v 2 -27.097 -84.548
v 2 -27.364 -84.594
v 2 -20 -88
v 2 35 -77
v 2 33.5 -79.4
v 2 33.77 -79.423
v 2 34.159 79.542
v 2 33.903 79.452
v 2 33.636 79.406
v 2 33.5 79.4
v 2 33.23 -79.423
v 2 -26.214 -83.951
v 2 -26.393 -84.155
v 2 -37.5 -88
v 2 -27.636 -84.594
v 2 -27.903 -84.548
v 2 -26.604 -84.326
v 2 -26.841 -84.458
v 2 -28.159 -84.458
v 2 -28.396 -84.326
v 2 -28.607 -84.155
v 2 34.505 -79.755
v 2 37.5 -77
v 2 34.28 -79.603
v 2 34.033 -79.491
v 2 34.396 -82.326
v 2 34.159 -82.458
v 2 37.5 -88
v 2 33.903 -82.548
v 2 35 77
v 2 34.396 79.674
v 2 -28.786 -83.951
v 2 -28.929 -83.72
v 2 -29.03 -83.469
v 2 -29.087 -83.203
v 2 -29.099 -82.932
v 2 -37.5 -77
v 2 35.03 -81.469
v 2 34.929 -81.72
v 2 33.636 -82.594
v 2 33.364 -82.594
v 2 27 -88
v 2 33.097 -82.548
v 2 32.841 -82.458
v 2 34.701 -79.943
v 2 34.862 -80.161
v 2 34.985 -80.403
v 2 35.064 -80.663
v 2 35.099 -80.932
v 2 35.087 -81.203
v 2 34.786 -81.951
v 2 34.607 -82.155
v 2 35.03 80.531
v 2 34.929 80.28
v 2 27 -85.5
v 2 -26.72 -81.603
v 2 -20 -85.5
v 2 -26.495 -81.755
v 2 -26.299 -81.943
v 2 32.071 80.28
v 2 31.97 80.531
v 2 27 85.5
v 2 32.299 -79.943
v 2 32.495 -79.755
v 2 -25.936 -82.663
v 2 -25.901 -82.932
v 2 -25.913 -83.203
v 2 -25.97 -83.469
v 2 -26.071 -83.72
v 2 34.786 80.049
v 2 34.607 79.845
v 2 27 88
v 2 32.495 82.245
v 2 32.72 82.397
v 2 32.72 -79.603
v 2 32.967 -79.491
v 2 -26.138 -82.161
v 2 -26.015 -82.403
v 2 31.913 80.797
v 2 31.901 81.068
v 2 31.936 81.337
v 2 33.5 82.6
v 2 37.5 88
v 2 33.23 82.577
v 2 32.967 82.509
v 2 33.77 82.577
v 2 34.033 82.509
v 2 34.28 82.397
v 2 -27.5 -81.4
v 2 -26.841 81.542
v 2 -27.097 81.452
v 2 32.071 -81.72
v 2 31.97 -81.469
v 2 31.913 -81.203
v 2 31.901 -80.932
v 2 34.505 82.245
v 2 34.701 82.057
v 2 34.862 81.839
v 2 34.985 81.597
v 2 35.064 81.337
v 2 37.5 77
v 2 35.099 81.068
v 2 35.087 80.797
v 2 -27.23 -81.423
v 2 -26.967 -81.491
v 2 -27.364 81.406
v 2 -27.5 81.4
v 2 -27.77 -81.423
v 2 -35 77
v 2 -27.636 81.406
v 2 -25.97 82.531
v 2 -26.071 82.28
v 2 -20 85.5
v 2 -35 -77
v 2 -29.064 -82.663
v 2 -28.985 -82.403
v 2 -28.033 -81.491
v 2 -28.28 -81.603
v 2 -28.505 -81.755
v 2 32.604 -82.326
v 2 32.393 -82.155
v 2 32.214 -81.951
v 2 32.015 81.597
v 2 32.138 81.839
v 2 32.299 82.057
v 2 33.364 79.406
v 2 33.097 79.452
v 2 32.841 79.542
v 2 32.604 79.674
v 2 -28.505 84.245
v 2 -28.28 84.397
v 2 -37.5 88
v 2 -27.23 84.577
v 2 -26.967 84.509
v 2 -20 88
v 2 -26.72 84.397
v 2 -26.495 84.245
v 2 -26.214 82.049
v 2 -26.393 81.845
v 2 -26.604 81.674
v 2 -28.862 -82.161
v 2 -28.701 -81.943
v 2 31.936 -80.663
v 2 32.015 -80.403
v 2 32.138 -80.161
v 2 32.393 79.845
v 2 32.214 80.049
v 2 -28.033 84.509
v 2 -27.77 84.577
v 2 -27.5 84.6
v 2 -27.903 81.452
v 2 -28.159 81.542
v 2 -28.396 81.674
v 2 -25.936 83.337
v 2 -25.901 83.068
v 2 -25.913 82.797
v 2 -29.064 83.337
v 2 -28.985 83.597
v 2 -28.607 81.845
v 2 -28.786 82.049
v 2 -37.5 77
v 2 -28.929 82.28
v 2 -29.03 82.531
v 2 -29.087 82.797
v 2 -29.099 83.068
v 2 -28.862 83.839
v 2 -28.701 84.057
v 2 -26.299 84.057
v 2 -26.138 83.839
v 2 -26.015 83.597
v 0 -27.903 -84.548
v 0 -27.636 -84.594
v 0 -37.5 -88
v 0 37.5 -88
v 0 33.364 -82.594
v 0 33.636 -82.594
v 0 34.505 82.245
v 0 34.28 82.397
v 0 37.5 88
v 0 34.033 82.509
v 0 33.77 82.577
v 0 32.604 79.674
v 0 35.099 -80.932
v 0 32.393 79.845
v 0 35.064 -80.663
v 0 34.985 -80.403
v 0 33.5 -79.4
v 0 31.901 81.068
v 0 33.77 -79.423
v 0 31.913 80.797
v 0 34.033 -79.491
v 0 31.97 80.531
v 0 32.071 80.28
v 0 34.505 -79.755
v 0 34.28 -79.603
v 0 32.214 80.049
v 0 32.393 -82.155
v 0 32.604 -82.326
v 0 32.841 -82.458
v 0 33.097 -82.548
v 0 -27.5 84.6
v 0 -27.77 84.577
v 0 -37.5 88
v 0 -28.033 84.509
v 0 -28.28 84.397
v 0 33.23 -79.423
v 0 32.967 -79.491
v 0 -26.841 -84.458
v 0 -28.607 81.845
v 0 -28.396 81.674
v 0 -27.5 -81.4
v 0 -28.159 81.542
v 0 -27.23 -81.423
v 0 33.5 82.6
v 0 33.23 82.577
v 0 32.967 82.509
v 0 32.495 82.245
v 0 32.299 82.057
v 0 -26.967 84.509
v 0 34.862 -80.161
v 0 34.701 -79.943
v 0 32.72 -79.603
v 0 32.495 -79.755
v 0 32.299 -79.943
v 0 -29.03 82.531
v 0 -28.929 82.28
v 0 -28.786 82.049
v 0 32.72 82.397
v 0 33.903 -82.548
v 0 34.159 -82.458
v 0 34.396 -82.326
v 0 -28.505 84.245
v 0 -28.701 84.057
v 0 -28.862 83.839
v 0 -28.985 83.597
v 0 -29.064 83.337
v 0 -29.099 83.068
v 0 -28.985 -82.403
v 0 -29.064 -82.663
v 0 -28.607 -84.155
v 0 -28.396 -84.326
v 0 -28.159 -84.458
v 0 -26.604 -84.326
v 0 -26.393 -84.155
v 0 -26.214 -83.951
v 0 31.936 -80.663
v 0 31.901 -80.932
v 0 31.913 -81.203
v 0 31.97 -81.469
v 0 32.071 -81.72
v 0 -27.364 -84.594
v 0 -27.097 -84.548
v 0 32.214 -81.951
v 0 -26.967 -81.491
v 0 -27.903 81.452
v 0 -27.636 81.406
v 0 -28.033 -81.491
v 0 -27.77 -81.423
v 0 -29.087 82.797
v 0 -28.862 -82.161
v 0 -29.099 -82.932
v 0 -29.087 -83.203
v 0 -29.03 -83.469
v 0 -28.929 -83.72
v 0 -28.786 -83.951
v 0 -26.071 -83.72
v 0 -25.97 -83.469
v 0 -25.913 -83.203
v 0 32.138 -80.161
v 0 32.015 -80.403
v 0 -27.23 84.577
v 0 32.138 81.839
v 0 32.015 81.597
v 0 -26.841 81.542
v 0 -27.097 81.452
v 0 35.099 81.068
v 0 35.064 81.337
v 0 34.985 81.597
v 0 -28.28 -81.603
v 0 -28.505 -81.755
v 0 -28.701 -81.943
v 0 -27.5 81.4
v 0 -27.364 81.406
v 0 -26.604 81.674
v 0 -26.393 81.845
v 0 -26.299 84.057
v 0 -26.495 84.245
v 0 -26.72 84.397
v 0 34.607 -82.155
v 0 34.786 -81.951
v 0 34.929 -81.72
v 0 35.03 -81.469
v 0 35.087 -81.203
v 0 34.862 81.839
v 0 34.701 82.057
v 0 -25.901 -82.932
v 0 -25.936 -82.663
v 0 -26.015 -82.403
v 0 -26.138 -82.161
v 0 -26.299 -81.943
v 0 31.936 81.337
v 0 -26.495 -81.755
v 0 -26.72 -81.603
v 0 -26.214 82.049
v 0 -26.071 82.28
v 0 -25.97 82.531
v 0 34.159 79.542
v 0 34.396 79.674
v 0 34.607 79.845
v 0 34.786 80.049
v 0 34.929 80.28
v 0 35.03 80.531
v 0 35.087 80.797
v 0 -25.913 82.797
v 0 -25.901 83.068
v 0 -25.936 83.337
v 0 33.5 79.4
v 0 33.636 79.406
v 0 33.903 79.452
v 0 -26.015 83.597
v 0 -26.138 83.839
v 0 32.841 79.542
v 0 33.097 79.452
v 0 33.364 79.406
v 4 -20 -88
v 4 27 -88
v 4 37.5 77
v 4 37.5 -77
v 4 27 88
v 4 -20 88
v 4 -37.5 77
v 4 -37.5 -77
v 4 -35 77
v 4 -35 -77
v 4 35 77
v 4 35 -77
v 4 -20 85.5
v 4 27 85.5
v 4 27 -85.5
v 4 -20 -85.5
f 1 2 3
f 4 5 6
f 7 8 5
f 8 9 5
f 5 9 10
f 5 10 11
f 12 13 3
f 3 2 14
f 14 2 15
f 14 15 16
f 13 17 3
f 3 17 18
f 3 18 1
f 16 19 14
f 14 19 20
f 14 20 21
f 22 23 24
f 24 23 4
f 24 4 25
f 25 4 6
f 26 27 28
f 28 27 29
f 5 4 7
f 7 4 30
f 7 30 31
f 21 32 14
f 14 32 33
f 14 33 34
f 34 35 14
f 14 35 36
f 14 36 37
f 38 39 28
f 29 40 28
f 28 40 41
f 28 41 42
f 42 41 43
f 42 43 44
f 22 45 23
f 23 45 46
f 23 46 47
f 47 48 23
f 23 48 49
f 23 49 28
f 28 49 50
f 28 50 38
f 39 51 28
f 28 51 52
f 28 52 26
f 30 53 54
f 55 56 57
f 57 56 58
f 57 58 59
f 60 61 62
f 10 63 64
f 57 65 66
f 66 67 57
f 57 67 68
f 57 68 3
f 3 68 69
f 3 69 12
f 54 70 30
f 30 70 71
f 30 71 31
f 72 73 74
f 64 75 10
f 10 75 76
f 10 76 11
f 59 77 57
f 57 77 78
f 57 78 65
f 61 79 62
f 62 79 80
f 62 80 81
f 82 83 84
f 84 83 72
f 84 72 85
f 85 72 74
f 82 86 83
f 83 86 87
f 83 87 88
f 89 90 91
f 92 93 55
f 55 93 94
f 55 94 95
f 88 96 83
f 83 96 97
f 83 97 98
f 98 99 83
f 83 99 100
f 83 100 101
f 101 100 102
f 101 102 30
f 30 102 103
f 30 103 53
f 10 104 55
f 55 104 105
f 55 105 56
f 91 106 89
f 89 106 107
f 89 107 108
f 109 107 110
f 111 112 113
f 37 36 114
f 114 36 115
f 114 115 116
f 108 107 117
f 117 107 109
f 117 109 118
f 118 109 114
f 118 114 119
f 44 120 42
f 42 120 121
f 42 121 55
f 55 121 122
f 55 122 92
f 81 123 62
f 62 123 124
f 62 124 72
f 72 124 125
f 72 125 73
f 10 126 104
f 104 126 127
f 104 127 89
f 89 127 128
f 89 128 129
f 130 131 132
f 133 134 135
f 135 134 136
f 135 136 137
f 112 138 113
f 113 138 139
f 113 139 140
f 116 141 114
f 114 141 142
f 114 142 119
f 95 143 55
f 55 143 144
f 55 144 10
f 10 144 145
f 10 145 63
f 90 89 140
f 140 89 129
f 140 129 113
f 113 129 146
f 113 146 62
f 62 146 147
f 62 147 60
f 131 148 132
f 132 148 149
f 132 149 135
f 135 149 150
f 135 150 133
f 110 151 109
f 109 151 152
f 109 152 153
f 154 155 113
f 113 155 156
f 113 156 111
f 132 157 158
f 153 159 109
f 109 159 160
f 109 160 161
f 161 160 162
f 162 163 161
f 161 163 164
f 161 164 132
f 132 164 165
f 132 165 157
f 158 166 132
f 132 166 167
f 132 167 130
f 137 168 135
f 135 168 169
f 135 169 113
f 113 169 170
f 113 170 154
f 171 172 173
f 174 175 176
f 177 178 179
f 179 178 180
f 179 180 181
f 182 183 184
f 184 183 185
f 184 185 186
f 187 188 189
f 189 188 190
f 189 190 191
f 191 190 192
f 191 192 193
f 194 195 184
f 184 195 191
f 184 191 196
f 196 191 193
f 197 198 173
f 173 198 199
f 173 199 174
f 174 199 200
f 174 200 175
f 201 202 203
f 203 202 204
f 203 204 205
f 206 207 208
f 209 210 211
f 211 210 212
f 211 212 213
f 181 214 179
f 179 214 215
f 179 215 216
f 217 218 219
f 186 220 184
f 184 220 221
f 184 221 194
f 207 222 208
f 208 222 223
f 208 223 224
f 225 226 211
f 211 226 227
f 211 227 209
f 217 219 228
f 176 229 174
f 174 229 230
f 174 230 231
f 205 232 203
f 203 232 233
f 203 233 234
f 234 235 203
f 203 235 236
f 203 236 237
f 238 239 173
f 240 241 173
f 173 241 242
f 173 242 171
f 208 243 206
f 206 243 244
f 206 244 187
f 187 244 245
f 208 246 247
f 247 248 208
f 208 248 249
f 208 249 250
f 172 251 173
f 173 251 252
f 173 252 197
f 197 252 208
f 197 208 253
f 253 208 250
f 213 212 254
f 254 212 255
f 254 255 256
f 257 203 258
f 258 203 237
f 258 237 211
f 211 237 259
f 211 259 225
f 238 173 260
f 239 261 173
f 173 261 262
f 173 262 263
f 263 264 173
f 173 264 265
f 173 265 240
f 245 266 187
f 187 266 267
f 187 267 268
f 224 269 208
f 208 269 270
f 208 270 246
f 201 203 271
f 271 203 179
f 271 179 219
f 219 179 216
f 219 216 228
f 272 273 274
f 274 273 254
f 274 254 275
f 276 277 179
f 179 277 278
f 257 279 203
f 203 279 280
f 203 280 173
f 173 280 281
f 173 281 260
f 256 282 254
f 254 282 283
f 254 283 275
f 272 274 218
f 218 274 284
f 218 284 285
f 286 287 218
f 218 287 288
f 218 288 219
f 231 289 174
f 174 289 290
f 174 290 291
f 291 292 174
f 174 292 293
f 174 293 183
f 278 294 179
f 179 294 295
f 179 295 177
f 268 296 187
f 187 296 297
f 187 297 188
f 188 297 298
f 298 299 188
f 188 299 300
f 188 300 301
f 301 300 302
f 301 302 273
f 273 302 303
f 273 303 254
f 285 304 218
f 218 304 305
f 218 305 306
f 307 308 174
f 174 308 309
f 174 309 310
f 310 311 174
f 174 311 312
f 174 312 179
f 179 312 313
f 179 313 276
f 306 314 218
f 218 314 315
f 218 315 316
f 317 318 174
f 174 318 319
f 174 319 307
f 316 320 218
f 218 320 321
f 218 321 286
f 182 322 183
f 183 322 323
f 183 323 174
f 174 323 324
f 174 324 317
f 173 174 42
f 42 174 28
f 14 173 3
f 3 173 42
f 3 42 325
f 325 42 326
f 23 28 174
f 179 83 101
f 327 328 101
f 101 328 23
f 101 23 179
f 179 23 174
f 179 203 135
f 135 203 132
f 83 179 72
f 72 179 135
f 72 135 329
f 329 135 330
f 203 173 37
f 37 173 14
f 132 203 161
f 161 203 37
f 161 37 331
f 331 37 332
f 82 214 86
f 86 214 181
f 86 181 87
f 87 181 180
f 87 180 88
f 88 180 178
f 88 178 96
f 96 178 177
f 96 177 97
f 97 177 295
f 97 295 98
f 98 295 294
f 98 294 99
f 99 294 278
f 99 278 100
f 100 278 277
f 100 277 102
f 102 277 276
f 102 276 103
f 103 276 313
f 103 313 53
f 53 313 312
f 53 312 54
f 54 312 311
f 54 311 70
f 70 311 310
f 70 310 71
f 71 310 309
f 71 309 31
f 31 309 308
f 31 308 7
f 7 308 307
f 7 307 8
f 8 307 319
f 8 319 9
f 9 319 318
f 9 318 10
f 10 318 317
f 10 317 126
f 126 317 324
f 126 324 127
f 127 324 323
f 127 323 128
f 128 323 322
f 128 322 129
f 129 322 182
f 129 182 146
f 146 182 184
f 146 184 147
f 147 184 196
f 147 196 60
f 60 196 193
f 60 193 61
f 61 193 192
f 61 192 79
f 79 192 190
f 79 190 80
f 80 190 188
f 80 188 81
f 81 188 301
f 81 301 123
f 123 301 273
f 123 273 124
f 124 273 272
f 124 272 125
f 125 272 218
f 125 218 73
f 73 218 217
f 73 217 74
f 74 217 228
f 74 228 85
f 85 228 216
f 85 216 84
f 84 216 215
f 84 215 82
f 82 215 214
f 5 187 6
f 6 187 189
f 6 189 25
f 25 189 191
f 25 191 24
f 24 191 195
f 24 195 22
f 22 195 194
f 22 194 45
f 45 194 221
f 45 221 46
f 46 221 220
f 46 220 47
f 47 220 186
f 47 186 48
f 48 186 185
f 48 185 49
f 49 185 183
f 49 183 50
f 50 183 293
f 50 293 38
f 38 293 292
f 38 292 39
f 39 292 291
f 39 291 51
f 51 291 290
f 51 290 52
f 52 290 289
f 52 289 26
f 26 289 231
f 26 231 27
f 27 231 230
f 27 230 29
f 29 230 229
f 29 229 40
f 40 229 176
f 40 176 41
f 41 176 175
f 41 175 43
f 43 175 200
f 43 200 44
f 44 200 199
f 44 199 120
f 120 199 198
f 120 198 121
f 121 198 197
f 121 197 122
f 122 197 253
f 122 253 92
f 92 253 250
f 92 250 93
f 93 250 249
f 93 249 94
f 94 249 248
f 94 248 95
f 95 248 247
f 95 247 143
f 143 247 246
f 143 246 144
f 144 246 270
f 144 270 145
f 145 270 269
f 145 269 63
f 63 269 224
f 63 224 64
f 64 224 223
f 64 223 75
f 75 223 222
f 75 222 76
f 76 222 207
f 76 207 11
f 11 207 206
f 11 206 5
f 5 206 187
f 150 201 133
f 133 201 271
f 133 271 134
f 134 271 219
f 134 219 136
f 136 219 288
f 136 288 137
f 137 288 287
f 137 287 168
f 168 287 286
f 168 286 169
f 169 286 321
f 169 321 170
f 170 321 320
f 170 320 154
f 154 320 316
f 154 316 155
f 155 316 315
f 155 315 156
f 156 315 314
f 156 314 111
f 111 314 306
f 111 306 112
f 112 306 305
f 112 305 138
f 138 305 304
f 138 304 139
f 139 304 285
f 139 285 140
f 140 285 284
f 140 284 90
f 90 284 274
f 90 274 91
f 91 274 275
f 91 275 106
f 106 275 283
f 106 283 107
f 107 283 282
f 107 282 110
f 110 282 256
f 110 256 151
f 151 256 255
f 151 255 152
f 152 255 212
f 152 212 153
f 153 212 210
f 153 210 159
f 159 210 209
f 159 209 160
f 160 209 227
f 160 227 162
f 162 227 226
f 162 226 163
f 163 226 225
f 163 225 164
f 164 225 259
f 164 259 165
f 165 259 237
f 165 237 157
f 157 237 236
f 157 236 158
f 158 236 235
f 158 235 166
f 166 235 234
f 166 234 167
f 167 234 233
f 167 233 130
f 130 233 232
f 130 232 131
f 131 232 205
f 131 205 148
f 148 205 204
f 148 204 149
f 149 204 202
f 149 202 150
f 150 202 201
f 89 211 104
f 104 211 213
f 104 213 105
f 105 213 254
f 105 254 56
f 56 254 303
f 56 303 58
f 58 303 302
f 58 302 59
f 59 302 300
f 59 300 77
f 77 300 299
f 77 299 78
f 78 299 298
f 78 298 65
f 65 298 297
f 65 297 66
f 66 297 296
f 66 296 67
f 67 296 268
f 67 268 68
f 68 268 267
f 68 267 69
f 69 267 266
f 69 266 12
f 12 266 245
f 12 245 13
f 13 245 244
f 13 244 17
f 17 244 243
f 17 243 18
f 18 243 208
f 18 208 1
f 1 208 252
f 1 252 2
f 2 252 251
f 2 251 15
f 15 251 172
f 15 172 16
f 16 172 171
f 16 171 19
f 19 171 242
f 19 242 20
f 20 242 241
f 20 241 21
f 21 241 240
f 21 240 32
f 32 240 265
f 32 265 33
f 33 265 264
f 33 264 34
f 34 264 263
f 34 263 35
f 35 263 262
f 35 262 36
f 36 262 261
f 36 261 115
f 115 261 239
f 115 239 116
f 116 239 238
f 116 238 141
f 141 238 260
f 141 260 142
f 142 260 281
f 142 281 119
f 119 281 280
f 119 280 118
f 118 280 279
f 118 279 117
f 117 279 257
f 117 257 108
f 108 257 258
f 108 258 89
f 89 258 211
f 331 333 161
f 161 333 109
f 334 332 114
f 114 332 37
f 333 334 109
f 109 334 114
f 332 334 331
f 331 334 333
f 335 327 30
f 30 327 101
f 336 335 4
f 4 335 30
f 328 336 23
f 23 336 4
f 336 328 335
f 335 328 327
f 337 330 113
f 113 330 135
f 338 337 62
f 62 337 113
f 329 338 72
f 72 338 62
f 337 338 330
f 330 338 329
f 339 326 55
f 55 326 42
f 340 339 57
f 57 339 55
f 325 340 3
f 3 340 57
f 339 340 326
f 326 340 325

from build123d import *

# Parameters (mm, degrees)
SKETCH1_W           = 176
SKETCH1_H           = 75
SKETCH1_R           = 1.6
BOSS_EXTRUDE1_DEPTH = 2
SKETCH3_W           = 154
SKETCH3_H           = 2.5
BOSS_EXTRUDE2_DEPTH = 2
SKETCH4_W           = 2.5
SKETCH4_H           = 47
BOSS_EXTRUDE3_DEPTH = 2


with BuildPart() as part:
    # Sketch1 → Boss-Extrude1 (new body)
    with BuildSketch(Plane(origin=(0, 0, 0), x_dir=(0, 0, -1), z_dir=(1, 0, 0))):
        Rectangle(SKETCH1_W, SKETCH1_H)
        with Locations((-81, 33.5)):
            Circle(SKETCH1_R, mode=Mode.SUBTRACT)
        with Locations((81, 33.5)):
            Circle(SKETCH1_R, mode=Mode.SUBTRACT)
        with Locations((-83, -27.5)):
            Circle(SKETCH1_R, mode=Mode.SUBTRACT)
        with Locations((83, -27.5)):
            Circle(SKETCH1_R, mode=Mode.SUBTRACT)
    extrude(amount=BOSS_EXTRUDE1_DEPTH)

    # Sketch3 → Boss-Extrude2 (add)
    with BuildSketch(Plane(origin=(2, 0, 0), x_dir=(0, 0, -1), z_dir=(1, 0, 0))):
        with Locations((0, -36.25)):
            Rectangle(SKETCH3_W, SKETCH3_H)
        with Locations((0, 36.25)):
            Rectangle(SKETCH3_W, SKETCH3_H)
    extrude(amount=BOSS_EXTRUDE2_DEPTH)

    # Sketch4 → Boss-Extrude3 (add)
    with BuildSketch(Plane(origin=(2, 0, 0), x_dir=(0, 0, -1), z_dir=(1, 0, 0))):
        with Locations((-86.75, 3.5)):
            Rectangle(SKETCH4_W, SKETCH4_H)
        with Locations((86.75, 3.5)):
            Rectangle(SKETCH4_W, SKETCH4_H)
    extrude(amount=BOSS_EXTRUDE3_DEPTH)


solid = part.part
